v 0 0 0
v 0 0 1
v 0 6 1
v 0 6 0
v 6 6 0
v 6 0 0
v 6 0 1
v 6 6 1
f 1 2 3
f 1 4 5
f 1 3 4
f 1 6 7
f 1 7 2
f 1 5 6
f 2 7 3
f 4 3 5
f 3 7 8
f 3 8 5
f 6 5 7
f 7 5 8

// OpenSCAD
/* Warning, this is a very basic generator with a lot of approximation 
input data : [VQFN, 5PC, 6x6x1.0mm, 36, , A, C04-25453A]
generated by com.zoubworld.electronics.cad.model3d.Basic
Date : Sun Feb 15 10:50:49 CET 2026
*/

//body
color("black")
translate([0,0,0])
cube([6.0,6.0,1.0], center=false);
